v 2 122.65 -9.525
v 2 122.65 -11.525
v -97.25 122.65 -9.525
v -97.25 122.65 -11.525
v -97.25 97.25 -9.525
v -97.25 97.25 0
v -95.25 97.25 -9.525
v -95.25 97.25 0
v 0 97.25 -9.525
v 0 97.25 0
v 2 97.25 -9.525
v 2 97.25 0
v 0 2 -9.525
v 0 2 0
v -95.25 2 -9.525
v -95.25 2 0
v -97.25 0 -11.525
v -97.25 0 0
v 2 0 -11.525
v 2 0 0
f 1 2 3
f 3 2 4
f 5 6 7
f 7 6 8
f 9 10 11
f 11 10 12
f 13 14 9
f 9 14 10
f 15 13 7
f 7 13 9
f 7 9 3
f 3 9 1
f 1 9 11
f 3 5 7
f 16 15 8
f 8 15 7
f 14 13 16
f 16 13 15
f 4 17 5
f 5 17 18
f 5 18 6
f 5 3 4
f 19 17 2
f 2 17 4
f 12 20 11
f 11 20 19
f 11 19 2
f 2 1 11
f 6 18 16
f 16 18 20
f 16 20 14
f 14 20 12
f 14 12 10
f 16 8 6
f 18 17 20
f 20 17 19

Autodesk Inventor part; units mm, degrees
ref_plane "YZ Plane" through (0, 0, 0) normal (1, 0, 0) x (0, 1, 0)
ref_plane "XZ Plane" through (0, 0, 0) normal (0, 1, 0) x (-1, 0, 0)
ref_plane "XY Plane" through (0, 0, 0) normal (0, 0, 1) x (1, 0, 0)
sketch "Sketch1" plane through (0, 0, 0) normal (0, 1, 0) x (-1, 0, 0)
  line L0 (0, 0) -> (95.25, 0)
  line L1 (95.25, 0) -> (95.25, -9.525)
  line L2 (95.25, -9.525) -> (0, -9.525)
  line L3 (0, -9.525) -> (0, 0)
  line L4 (-2, -11.525) -> (97.25, -11.525)
  line L5 (97.25, -11.525) -> (97.25, 2)
  line L6 (97.25, 2) -> (-2, 2)
  line L7 (-2, 2) -> (-2, -11.525)
  line L8 (95.25, 0) -> (97.25, 0)
  line L9 (0, 0) -> (-2, 0)
  dimension "d0" = 95.25
  dimension "d1" = 9.525
  dimension "d4" = 2
extrude "Extrusion1" add sketch "Sketch1" along normal blind 2 contours L0 L1 L2 L3 | L3 L2 L1 L8 L5 L4 L7 L9
sketch "Sketch2" plane through (0, 2, 0) normal (0, 1, 0) x (1, 0, 0)
  line L0 (-97.25, 0) -> (2, 0) projected
  line L1 (2, 0) -> (2, 11.525) projected
  line L2 (2, 11.525) -> (-97.25, 11.525) projected
  line L3 (-97.25, 11.525) -> (-97.25, 0) projected
  line L4 (0, 9.525) -> (0, 2)
  line L5 (0, 2) -> (-95.25, 2)
  line L6 (-95.25, 2) -> (-95.25, 9.525)
  line L7 (-95.25, 9.525) -> (0, 9.525)
  line L8 (0, 2) -> (0, 0)
  line L9 (-95.25, 2) -> (-95.25, 0)
  dimension "d5" = 2
extrude "Extrusion2" add sketch "Sketch2" along normal blind 95.25 contours L3 L2 L1 L0 L8 L4 L7 L6 L9
sketch "Sketch3" plane through (0, 97.25, 0) normal (0, 1, 0) x (1, 0, 0)
  line L0 (-97.25, 0) -> (-95.25, 0) projected
  line L1 (-95.25, 0) -> (-95.25, 9.525) projected
  line L2 (-95.25, 9.525) -> (0, 9.525) projected
  line L3 (0, 9.525) -> (0, 0) projected
  line L4 (0, 0) -> (2, 0) projected
  line L5 (2, 0) -> (2, 11.525) projected
  line L6 (2, 11.525) -> (-97.25, 11.525) projected
  line L7 (-97.25, 11.525) -> (-97.25, 0) projected
  line L8 (-97.25, 11.525) -> (2, 11.525)
  line L9 (2, 11.525) -> (2, 9.525)
  line L10 (2, 9.525) -> (-97.25, 9.525)
  line L11 (-97.25, 9.525) -> (-97.25, 11.525)
  dimension "d8" = 99.25
extrude "Extrusion3" add sketch "Sketch3" along normal blind 25.4 contours L7 L6 L5 L10 L2
properties part number "back"
